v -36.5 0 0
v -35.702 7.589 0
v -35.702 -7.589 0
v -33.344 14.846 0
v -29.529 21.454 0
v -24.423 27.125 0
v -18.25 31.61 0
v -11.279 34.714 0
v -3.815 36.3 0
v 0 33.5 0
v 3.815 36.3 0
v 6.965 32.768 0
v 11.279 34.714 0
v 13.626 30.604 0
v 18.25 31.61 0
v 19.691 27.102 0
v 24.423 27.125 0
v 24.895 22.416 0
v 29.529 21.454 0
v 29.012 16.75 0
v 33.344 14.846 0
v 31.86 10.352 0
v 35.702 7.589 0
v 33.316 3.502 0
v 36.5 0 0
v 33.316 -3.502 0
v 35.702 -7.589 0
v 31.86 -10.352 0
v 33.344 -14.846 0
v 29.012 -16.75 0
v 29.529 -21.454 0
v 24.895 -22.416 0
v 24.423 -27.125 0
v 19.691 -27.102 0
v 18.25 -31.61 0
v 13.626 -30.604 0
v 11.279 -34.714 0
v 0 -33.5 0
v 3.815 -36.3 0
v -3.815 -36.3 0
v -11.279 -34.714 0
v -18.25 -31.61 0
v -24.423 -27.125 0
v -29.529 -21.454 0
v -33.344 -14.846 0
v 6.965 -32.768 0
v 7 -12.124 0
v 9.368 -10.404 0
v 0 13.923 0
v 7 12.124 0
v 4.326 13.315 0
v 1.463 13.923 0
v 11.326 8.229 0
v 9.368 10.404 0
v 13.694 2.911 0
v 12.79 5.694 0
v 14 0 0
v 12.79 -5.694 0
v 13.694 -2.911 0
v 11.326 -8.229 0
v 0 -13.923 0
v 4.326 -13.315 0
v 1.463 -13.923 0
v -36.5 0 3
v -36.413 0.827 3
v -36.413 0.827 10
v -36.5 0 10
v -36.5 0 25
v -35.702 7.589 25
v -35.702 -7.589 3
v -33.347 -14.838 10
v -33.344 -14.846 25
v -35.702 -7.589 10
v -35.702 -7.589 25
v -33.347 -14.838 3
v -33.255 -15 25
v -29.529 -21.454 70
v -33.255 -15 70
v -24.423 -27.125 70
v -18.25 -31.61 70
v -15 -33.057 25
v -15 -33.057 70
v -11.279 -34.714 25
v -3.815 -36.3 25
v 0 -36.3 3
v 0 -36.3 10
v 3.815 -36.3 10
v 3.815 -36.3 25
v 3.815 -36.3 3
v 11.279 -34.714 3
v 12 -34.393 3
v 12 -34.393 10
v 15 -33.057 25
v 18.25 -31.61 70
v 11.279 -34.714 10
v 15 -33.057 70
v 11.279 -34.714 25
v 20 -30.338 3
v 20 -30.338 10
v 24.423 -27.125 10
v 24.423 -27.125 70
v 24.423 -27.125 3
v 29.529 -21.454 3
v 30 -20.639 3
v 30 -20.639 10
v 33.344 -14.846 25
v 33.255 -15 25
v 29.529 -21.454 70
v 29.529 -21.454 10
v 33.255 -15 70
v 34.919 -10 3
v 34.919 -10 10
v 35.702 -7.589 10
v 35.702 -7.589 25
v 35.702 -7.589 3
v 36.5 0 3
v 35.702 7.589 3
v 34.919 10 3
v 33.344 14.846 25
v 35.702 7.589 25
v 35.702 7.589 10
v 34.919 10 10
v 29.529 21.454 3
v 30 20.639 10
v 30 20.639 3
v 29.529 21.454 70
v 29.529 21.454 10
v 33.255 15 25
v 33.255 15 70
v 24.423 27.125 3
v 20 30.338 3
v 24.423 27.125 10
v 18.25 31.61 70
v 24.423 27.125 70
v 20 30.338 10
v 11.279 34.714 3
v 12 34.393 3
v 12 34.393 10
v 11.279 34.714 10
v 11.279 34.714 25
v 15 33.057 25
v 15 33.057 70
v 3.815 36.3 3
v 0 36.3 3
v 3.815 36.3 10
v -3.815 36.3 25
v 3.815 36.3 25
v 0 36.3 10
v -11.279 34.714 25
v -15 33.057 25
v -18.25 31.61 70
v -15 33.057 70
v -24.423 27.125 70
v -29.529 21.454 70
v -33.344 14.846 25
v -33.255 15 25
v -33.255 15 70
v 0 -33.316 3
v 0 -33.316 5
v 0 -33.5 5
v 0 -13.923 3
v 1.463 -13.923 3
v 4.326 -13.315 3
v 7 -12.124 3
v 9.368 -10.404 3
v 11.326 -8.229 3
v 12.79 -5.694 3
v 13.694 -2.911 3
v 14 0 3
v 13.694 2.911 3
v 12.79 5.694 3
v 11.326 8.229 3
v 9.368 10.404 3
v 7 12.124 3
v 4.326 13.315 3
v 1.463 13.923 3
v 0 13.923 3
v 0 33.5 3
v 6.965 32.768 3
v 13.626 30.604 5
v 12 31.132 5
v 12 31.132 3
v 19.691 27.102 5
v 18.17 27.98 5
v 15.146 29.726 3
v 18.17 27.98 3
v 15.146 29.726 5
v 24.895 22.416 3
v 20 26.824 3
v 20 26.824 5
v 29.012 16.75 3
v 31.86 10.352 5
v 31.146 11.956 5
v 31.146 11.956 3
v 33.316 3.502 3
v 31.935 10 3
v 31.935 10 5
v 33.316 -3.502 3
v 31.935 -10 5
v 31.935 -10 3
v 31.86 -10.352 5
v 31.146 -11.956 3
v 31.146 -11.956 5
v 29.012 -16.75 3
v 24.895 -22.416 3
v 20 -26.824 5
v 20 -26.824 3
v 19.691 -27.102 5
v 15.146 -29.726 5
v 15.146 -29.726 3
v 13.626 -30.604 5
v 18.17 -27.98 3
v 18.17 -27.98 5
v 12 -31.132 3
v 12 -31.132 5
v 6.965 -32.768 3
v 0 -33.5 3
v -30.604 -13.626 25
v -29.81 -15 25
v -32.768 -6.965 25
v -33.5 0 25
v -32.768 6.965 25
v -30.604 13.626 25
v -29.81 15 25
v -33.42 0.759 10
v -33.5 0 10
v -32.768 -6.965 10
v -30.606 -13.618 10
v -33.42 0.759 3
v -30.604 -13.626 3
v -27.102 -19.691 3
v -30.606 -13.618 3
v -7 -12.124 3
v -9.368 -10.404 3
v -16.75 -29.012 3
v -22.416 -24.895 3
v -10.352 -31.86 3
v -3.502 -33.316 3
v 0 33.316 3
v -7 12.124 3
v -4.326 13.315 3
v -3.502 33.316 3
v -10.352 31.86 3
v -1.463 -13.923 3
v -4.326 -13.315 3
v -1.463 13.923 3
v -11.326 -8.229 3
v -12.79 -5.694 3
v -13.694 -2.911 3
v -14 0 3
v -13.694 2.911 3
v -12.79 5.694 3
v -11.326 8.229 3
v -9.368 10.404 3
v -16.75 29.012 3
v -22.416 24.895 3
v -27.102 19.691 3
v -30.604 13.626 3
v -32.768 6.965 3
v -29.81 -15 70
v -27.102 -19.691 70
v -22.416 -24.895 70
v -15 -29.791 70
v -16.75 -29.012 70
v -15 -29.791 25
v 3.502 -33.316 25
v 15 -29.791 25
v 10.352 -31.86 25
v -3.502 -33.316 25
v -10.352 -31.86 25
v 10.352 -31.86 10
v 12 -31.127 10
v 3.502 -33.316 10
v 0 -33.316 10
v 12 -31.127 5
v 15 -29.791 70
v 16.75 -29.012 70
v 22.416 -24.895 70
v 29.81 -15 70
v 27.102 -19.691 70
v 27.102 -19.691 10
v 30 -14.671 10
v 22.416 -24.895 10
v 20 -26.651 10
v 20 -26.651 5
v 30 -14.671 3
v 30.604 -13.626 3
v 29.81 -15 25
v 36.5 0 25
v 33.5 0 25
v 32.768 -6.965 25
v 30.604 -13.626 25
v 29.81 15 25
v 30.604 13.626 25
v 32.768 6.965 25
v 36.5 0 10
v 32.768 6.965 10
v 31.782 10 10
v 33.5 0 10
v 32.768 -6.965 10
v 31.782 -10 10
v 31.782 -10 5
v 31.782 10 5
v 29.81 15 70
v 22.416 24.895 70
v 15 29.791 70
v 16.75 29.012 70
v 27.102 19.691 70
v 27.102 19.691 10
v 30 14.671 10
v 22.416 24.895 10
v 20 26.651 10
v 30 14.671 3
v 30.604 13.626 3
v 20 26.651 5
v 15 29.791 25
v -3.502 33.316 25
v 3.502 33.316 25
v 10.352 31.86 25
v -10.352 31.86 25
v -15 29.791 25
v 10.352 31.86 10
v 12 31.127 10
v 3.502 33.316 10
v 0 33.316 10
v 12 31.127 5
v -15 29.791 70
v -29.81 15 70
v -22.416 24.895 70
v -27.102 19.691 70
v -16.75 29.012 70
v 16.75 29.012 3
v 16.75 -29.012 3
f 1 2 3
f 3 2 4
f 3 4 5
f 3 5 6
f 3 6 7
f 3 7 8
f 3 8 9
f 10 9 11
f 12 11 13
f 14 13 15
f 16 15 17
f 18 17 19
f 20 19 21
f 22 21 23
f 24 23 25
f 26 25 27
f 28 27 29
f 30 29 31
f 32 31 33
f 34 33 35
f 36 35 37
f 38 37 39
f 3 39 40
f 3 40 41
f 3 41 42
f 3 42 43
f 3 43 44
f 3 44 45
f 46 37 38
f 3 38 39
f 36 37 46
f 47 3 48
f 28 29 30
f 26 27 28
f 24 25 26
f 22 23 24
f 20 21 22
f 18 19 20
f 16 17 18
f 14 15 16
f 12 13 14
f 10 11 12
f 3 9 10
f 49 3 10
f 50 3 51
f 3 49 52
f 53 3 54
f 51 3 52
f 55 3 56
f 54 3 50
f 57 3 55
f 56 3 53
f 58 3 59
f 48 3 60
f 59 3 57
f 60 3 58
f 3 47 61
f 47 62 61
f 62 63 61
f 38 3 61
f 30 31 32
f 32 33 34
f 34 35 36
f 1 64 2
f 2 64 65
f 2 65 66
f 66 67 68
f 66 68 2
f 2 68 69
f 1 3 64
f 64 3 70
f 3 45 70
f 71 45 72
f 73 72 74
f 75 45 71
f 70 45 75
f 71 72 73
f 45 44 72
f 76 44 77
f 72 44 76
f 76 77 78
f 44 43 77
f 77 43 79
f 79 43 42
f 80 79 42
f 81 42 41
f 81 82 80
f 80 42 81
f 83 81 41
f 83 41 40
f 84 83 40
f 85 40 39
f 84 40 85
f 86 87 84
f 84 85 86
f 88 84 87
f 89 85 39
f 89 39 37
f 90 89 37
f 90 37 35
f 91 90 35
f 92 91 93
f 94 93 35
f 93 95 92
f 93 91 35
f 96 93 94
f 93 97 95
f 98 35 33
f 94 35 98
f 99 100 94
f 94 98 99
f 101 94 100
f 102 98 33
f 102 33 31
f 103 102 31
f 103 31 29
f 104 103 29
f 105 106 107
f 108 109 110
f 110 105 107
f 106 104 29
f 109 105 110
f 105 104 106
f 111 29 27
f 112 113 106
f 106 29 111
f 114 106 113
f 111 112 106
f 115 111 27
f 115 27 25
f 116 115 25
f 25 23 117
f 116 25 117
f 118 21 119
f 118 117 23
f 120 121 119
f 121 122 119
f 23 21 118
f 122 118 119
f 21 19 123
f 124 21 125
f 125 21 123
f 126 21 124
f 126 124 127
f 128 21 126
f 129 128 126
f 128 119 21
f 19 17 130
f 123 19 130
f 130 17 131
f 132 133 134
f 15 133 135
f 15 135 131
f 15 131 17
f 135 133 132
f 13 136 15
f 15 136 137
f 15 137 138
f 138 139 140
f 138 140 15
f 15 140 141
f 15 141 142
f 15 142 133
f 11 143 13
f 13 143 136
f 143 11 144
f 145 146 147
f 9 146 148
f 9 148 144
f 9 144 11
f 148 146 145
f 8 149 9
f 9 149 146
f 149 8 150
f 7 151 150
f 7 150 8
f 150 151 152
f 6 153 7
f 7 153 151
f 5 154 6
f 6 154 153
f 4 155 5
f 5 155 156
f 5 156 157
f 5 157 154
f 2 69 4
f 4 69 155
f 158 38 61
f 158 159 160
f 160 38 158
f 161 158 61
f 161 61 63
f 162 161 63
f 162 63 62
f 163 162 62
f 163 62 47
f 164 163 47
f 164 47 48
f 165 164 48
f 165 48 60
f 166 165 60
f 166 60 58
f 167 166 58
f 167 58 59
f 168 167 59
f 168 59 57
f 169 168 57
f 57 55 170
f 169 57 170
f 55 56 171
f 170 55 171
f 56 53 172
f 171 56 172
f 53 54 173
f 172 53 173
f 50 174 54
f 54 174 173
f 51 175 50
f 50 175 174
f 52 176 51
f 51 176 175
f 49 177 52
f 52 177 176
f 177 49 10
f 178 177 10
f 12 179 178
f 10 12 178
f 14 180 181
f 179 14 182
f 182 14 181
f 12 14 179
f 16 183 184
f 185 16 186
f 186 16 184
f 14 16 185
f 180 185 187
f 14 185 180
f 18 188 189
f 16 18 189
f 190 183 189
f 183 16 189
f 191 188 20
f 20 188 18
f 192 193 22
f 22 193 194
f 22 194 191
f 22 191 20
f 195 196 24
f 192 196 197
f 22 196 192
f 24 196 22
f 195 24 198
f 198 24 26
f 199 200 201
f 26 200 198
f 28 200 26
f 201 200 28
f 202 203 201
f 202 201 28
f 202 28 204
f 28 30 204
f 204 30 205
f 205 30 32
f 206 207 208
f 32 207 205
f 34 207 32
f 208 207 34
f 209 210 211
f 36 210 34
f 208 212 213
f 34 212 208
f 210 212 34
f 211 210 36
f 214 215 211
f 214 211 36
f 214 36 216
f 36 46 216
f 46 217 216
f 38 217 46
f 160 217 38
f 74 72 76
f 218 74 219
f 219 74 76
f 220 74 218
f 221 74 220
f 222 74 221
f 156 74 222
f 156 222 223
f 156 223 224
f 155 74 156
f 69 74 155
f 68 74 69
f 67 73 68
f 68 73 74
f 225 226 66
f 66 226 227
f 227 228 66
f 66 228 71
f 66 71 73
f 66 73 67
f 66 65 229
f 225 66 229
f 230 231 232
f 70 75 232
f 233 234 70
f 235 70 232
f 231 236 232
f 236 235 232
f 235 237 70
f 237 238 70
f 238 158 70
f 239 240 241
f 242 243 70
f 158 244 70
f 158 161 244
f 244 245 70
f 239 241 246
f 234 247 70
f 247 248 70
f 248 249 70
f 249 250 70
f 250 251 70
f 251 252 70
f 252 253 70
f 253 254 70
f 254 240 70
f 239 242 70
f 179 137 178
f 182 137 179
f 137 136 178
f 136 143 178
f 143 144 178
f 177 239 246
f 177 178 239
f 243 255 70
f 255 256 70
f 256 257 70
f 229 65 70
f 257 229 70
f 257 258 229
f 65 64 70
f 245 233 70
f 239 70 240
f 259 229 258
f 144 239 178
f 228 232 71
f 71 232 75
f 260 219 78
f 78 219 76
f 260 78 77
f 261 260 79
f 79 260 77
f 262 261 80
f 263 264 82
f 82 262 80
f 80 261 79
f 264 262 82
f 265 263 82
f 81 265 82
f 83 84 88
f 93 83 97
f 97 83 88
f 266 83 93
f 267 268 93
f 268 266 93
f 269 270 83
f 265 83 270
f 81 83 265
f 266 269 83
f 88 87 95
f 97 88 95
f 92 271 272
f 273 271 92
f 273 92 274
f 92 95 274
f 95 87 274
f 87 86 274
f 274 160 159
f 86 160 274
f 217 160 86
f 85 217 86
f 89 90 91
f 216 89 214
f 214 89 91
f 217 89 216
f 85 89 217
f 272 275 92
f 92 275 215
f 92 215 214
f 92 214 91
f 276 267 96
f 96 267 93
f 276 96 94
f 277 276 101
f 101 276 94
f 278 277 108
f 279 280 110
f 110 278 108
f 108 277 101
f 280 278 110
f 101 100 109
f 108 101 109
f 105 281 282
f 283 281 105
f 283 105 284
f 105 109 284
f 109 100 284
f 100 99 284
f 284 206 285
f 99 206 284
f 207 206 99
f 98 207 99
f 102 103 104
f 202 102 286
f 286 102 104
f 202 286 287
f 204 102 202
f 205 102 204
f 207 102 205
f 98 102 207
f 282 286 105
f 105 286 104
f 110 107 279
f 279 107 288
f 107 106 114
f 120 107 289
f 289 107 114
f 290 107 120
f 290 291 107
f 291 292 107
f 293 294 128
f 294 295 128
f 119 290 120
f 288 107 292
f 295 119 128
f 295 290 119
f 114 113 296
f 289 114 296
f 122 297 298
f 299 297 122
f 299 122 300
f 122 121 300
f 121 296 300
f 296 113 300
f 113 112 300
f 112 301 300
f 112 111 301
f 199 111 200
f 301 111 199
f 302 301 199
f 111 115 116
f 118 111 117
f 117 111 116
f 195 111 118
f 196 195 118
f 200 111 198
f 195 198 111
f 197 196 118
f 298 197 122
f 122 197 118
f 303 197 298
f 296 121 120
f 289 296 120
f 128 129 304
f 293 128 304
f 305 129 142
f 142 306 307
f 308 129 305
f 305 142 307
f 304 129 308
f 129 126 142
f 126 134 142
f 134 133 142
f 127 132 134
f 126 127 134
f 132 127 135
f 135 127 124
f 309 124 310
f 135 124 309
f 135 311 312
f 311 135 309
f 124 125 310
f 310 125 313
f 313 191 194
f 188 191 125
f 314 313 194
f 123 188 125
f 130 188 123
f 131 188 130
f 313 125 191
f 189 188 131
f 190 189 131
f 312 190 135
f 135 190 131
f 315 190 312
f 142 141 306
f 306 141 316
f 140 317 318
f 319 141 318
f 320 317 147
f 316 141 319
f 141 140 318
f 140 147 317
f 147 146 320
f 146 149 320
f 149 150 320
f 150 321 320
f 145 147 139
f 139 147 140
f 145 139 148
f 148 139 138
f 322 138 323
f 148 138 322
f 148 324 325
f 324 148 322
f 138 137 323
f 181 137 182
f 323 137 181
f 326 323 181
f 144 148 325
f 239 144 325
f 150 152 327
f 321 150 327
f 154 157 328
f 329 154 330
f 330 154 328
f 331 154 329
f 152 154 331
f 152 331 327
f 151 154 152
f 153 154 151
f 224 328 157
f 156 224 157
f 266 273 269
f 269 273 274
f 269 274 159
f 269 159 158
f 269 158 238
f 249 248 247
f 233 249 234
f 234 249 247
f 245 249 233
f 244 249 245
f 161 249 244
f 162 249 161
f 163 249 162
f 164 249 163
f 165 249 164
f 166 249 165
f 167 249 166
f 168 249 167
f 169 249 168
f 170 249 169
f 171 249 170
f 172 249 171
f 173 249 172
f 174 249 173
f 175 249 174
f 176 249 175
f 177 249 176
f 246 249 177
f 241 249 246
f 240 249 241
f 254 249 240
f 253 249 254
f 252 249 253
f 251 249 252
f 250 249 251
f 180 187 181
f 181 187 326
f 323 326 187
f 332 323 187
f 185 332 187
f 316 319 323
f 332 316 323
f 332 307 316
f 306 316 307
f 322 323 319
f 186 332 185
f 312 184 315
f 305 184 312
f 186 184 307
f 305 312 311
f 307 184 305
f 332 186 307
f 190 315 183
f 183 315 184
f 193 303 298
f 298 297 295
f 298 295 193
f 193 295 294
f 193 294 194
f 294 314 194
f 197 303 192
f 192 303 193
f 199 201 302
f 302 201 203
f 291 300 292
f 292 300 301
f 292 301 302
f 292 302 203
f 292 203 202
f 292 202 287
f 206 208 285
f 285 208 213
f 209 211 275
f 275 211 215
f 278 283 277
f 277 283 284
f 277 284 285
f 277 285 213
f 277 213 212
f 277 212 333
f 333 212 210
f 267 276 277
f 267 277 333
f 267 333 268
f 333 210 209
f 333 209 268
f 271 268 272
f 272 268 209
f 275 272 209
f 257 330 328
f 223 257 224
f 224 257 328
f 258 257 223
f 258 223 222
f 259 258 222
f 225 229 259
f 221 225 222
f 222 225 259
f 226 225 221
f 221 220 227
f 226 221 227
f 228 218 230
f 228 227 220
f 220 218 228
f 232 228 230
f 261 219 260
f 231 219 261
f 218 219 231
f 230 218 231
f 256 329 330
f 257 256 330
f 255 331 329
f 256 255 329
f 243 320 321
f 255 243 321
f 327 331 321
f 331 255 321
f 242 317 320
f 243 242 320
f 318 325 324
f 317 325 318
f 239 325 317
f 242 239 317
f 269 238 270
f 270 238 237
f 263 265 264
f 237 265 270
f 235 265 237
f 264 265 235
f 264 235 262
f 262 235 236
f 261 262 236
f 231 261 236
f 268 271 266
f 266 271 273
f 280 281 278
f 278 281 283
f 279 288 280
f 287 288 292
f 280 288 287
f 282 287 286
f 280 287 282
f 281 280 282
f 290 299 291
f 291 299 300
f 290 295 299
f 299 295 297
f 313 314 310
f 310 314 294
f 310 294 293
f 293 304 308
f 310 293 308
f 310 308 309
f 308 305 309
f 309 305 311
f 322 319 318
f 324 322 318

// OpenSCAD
difference() {
	difference() {
		difference() {
			cylinder(70, 36.5, 36.5);
			translate([0,0,3]){
				cylinder(70, 33.5, 33.5);
			}
		}
		union() {
			rotate([0,0,270]) {
				translate([-10,0,3]) {
					cube([20,50,7]);
				}
			}
			translate([0,-40,3]) {
				cube([12,80,7]);
			}
			translate([20,-40,3]) {
				cube([10,80,7]);
			}
			translate([-15,-40,25]) {
				cube([30,80,70]);
			}
			rotate([0,0,90]) {
				translate([-15,-40,25]) {
					cube([30,80,70]);
				}
			}
		}

		translate([0,0,-5]) {
			rotate([0,0,90]) {
				difference() {
					cylinder(10, 33.5, 33.5);
					translate([-40,0,-5]){
						cube([80,40,20]);
					}
				}
			}
		}


	}

	difference() {
		translate([0,0,3]) {
			rotate([0,0,180-18]) {
				tri(40,36,7);
			}
		}
		translate([0,0,3]) {
			rotate([0,0,180-18]) {
				tri(40,12,7);
			}
		}
	}
}

cylinder(3, 14, 14);



module tri(b,c,h) {
	polyhedron( 
		points = [[0,0,0],[b,0,0],[b,c,0],[0,0,h],[b,0,h],[b,c,h]],
		triangles = [[0,1,2], [0,4,1], [1,5,2], [0,2,3],[0,3,4],[1,4,5],[2,5,3],[3,5,4]]
	);
}
